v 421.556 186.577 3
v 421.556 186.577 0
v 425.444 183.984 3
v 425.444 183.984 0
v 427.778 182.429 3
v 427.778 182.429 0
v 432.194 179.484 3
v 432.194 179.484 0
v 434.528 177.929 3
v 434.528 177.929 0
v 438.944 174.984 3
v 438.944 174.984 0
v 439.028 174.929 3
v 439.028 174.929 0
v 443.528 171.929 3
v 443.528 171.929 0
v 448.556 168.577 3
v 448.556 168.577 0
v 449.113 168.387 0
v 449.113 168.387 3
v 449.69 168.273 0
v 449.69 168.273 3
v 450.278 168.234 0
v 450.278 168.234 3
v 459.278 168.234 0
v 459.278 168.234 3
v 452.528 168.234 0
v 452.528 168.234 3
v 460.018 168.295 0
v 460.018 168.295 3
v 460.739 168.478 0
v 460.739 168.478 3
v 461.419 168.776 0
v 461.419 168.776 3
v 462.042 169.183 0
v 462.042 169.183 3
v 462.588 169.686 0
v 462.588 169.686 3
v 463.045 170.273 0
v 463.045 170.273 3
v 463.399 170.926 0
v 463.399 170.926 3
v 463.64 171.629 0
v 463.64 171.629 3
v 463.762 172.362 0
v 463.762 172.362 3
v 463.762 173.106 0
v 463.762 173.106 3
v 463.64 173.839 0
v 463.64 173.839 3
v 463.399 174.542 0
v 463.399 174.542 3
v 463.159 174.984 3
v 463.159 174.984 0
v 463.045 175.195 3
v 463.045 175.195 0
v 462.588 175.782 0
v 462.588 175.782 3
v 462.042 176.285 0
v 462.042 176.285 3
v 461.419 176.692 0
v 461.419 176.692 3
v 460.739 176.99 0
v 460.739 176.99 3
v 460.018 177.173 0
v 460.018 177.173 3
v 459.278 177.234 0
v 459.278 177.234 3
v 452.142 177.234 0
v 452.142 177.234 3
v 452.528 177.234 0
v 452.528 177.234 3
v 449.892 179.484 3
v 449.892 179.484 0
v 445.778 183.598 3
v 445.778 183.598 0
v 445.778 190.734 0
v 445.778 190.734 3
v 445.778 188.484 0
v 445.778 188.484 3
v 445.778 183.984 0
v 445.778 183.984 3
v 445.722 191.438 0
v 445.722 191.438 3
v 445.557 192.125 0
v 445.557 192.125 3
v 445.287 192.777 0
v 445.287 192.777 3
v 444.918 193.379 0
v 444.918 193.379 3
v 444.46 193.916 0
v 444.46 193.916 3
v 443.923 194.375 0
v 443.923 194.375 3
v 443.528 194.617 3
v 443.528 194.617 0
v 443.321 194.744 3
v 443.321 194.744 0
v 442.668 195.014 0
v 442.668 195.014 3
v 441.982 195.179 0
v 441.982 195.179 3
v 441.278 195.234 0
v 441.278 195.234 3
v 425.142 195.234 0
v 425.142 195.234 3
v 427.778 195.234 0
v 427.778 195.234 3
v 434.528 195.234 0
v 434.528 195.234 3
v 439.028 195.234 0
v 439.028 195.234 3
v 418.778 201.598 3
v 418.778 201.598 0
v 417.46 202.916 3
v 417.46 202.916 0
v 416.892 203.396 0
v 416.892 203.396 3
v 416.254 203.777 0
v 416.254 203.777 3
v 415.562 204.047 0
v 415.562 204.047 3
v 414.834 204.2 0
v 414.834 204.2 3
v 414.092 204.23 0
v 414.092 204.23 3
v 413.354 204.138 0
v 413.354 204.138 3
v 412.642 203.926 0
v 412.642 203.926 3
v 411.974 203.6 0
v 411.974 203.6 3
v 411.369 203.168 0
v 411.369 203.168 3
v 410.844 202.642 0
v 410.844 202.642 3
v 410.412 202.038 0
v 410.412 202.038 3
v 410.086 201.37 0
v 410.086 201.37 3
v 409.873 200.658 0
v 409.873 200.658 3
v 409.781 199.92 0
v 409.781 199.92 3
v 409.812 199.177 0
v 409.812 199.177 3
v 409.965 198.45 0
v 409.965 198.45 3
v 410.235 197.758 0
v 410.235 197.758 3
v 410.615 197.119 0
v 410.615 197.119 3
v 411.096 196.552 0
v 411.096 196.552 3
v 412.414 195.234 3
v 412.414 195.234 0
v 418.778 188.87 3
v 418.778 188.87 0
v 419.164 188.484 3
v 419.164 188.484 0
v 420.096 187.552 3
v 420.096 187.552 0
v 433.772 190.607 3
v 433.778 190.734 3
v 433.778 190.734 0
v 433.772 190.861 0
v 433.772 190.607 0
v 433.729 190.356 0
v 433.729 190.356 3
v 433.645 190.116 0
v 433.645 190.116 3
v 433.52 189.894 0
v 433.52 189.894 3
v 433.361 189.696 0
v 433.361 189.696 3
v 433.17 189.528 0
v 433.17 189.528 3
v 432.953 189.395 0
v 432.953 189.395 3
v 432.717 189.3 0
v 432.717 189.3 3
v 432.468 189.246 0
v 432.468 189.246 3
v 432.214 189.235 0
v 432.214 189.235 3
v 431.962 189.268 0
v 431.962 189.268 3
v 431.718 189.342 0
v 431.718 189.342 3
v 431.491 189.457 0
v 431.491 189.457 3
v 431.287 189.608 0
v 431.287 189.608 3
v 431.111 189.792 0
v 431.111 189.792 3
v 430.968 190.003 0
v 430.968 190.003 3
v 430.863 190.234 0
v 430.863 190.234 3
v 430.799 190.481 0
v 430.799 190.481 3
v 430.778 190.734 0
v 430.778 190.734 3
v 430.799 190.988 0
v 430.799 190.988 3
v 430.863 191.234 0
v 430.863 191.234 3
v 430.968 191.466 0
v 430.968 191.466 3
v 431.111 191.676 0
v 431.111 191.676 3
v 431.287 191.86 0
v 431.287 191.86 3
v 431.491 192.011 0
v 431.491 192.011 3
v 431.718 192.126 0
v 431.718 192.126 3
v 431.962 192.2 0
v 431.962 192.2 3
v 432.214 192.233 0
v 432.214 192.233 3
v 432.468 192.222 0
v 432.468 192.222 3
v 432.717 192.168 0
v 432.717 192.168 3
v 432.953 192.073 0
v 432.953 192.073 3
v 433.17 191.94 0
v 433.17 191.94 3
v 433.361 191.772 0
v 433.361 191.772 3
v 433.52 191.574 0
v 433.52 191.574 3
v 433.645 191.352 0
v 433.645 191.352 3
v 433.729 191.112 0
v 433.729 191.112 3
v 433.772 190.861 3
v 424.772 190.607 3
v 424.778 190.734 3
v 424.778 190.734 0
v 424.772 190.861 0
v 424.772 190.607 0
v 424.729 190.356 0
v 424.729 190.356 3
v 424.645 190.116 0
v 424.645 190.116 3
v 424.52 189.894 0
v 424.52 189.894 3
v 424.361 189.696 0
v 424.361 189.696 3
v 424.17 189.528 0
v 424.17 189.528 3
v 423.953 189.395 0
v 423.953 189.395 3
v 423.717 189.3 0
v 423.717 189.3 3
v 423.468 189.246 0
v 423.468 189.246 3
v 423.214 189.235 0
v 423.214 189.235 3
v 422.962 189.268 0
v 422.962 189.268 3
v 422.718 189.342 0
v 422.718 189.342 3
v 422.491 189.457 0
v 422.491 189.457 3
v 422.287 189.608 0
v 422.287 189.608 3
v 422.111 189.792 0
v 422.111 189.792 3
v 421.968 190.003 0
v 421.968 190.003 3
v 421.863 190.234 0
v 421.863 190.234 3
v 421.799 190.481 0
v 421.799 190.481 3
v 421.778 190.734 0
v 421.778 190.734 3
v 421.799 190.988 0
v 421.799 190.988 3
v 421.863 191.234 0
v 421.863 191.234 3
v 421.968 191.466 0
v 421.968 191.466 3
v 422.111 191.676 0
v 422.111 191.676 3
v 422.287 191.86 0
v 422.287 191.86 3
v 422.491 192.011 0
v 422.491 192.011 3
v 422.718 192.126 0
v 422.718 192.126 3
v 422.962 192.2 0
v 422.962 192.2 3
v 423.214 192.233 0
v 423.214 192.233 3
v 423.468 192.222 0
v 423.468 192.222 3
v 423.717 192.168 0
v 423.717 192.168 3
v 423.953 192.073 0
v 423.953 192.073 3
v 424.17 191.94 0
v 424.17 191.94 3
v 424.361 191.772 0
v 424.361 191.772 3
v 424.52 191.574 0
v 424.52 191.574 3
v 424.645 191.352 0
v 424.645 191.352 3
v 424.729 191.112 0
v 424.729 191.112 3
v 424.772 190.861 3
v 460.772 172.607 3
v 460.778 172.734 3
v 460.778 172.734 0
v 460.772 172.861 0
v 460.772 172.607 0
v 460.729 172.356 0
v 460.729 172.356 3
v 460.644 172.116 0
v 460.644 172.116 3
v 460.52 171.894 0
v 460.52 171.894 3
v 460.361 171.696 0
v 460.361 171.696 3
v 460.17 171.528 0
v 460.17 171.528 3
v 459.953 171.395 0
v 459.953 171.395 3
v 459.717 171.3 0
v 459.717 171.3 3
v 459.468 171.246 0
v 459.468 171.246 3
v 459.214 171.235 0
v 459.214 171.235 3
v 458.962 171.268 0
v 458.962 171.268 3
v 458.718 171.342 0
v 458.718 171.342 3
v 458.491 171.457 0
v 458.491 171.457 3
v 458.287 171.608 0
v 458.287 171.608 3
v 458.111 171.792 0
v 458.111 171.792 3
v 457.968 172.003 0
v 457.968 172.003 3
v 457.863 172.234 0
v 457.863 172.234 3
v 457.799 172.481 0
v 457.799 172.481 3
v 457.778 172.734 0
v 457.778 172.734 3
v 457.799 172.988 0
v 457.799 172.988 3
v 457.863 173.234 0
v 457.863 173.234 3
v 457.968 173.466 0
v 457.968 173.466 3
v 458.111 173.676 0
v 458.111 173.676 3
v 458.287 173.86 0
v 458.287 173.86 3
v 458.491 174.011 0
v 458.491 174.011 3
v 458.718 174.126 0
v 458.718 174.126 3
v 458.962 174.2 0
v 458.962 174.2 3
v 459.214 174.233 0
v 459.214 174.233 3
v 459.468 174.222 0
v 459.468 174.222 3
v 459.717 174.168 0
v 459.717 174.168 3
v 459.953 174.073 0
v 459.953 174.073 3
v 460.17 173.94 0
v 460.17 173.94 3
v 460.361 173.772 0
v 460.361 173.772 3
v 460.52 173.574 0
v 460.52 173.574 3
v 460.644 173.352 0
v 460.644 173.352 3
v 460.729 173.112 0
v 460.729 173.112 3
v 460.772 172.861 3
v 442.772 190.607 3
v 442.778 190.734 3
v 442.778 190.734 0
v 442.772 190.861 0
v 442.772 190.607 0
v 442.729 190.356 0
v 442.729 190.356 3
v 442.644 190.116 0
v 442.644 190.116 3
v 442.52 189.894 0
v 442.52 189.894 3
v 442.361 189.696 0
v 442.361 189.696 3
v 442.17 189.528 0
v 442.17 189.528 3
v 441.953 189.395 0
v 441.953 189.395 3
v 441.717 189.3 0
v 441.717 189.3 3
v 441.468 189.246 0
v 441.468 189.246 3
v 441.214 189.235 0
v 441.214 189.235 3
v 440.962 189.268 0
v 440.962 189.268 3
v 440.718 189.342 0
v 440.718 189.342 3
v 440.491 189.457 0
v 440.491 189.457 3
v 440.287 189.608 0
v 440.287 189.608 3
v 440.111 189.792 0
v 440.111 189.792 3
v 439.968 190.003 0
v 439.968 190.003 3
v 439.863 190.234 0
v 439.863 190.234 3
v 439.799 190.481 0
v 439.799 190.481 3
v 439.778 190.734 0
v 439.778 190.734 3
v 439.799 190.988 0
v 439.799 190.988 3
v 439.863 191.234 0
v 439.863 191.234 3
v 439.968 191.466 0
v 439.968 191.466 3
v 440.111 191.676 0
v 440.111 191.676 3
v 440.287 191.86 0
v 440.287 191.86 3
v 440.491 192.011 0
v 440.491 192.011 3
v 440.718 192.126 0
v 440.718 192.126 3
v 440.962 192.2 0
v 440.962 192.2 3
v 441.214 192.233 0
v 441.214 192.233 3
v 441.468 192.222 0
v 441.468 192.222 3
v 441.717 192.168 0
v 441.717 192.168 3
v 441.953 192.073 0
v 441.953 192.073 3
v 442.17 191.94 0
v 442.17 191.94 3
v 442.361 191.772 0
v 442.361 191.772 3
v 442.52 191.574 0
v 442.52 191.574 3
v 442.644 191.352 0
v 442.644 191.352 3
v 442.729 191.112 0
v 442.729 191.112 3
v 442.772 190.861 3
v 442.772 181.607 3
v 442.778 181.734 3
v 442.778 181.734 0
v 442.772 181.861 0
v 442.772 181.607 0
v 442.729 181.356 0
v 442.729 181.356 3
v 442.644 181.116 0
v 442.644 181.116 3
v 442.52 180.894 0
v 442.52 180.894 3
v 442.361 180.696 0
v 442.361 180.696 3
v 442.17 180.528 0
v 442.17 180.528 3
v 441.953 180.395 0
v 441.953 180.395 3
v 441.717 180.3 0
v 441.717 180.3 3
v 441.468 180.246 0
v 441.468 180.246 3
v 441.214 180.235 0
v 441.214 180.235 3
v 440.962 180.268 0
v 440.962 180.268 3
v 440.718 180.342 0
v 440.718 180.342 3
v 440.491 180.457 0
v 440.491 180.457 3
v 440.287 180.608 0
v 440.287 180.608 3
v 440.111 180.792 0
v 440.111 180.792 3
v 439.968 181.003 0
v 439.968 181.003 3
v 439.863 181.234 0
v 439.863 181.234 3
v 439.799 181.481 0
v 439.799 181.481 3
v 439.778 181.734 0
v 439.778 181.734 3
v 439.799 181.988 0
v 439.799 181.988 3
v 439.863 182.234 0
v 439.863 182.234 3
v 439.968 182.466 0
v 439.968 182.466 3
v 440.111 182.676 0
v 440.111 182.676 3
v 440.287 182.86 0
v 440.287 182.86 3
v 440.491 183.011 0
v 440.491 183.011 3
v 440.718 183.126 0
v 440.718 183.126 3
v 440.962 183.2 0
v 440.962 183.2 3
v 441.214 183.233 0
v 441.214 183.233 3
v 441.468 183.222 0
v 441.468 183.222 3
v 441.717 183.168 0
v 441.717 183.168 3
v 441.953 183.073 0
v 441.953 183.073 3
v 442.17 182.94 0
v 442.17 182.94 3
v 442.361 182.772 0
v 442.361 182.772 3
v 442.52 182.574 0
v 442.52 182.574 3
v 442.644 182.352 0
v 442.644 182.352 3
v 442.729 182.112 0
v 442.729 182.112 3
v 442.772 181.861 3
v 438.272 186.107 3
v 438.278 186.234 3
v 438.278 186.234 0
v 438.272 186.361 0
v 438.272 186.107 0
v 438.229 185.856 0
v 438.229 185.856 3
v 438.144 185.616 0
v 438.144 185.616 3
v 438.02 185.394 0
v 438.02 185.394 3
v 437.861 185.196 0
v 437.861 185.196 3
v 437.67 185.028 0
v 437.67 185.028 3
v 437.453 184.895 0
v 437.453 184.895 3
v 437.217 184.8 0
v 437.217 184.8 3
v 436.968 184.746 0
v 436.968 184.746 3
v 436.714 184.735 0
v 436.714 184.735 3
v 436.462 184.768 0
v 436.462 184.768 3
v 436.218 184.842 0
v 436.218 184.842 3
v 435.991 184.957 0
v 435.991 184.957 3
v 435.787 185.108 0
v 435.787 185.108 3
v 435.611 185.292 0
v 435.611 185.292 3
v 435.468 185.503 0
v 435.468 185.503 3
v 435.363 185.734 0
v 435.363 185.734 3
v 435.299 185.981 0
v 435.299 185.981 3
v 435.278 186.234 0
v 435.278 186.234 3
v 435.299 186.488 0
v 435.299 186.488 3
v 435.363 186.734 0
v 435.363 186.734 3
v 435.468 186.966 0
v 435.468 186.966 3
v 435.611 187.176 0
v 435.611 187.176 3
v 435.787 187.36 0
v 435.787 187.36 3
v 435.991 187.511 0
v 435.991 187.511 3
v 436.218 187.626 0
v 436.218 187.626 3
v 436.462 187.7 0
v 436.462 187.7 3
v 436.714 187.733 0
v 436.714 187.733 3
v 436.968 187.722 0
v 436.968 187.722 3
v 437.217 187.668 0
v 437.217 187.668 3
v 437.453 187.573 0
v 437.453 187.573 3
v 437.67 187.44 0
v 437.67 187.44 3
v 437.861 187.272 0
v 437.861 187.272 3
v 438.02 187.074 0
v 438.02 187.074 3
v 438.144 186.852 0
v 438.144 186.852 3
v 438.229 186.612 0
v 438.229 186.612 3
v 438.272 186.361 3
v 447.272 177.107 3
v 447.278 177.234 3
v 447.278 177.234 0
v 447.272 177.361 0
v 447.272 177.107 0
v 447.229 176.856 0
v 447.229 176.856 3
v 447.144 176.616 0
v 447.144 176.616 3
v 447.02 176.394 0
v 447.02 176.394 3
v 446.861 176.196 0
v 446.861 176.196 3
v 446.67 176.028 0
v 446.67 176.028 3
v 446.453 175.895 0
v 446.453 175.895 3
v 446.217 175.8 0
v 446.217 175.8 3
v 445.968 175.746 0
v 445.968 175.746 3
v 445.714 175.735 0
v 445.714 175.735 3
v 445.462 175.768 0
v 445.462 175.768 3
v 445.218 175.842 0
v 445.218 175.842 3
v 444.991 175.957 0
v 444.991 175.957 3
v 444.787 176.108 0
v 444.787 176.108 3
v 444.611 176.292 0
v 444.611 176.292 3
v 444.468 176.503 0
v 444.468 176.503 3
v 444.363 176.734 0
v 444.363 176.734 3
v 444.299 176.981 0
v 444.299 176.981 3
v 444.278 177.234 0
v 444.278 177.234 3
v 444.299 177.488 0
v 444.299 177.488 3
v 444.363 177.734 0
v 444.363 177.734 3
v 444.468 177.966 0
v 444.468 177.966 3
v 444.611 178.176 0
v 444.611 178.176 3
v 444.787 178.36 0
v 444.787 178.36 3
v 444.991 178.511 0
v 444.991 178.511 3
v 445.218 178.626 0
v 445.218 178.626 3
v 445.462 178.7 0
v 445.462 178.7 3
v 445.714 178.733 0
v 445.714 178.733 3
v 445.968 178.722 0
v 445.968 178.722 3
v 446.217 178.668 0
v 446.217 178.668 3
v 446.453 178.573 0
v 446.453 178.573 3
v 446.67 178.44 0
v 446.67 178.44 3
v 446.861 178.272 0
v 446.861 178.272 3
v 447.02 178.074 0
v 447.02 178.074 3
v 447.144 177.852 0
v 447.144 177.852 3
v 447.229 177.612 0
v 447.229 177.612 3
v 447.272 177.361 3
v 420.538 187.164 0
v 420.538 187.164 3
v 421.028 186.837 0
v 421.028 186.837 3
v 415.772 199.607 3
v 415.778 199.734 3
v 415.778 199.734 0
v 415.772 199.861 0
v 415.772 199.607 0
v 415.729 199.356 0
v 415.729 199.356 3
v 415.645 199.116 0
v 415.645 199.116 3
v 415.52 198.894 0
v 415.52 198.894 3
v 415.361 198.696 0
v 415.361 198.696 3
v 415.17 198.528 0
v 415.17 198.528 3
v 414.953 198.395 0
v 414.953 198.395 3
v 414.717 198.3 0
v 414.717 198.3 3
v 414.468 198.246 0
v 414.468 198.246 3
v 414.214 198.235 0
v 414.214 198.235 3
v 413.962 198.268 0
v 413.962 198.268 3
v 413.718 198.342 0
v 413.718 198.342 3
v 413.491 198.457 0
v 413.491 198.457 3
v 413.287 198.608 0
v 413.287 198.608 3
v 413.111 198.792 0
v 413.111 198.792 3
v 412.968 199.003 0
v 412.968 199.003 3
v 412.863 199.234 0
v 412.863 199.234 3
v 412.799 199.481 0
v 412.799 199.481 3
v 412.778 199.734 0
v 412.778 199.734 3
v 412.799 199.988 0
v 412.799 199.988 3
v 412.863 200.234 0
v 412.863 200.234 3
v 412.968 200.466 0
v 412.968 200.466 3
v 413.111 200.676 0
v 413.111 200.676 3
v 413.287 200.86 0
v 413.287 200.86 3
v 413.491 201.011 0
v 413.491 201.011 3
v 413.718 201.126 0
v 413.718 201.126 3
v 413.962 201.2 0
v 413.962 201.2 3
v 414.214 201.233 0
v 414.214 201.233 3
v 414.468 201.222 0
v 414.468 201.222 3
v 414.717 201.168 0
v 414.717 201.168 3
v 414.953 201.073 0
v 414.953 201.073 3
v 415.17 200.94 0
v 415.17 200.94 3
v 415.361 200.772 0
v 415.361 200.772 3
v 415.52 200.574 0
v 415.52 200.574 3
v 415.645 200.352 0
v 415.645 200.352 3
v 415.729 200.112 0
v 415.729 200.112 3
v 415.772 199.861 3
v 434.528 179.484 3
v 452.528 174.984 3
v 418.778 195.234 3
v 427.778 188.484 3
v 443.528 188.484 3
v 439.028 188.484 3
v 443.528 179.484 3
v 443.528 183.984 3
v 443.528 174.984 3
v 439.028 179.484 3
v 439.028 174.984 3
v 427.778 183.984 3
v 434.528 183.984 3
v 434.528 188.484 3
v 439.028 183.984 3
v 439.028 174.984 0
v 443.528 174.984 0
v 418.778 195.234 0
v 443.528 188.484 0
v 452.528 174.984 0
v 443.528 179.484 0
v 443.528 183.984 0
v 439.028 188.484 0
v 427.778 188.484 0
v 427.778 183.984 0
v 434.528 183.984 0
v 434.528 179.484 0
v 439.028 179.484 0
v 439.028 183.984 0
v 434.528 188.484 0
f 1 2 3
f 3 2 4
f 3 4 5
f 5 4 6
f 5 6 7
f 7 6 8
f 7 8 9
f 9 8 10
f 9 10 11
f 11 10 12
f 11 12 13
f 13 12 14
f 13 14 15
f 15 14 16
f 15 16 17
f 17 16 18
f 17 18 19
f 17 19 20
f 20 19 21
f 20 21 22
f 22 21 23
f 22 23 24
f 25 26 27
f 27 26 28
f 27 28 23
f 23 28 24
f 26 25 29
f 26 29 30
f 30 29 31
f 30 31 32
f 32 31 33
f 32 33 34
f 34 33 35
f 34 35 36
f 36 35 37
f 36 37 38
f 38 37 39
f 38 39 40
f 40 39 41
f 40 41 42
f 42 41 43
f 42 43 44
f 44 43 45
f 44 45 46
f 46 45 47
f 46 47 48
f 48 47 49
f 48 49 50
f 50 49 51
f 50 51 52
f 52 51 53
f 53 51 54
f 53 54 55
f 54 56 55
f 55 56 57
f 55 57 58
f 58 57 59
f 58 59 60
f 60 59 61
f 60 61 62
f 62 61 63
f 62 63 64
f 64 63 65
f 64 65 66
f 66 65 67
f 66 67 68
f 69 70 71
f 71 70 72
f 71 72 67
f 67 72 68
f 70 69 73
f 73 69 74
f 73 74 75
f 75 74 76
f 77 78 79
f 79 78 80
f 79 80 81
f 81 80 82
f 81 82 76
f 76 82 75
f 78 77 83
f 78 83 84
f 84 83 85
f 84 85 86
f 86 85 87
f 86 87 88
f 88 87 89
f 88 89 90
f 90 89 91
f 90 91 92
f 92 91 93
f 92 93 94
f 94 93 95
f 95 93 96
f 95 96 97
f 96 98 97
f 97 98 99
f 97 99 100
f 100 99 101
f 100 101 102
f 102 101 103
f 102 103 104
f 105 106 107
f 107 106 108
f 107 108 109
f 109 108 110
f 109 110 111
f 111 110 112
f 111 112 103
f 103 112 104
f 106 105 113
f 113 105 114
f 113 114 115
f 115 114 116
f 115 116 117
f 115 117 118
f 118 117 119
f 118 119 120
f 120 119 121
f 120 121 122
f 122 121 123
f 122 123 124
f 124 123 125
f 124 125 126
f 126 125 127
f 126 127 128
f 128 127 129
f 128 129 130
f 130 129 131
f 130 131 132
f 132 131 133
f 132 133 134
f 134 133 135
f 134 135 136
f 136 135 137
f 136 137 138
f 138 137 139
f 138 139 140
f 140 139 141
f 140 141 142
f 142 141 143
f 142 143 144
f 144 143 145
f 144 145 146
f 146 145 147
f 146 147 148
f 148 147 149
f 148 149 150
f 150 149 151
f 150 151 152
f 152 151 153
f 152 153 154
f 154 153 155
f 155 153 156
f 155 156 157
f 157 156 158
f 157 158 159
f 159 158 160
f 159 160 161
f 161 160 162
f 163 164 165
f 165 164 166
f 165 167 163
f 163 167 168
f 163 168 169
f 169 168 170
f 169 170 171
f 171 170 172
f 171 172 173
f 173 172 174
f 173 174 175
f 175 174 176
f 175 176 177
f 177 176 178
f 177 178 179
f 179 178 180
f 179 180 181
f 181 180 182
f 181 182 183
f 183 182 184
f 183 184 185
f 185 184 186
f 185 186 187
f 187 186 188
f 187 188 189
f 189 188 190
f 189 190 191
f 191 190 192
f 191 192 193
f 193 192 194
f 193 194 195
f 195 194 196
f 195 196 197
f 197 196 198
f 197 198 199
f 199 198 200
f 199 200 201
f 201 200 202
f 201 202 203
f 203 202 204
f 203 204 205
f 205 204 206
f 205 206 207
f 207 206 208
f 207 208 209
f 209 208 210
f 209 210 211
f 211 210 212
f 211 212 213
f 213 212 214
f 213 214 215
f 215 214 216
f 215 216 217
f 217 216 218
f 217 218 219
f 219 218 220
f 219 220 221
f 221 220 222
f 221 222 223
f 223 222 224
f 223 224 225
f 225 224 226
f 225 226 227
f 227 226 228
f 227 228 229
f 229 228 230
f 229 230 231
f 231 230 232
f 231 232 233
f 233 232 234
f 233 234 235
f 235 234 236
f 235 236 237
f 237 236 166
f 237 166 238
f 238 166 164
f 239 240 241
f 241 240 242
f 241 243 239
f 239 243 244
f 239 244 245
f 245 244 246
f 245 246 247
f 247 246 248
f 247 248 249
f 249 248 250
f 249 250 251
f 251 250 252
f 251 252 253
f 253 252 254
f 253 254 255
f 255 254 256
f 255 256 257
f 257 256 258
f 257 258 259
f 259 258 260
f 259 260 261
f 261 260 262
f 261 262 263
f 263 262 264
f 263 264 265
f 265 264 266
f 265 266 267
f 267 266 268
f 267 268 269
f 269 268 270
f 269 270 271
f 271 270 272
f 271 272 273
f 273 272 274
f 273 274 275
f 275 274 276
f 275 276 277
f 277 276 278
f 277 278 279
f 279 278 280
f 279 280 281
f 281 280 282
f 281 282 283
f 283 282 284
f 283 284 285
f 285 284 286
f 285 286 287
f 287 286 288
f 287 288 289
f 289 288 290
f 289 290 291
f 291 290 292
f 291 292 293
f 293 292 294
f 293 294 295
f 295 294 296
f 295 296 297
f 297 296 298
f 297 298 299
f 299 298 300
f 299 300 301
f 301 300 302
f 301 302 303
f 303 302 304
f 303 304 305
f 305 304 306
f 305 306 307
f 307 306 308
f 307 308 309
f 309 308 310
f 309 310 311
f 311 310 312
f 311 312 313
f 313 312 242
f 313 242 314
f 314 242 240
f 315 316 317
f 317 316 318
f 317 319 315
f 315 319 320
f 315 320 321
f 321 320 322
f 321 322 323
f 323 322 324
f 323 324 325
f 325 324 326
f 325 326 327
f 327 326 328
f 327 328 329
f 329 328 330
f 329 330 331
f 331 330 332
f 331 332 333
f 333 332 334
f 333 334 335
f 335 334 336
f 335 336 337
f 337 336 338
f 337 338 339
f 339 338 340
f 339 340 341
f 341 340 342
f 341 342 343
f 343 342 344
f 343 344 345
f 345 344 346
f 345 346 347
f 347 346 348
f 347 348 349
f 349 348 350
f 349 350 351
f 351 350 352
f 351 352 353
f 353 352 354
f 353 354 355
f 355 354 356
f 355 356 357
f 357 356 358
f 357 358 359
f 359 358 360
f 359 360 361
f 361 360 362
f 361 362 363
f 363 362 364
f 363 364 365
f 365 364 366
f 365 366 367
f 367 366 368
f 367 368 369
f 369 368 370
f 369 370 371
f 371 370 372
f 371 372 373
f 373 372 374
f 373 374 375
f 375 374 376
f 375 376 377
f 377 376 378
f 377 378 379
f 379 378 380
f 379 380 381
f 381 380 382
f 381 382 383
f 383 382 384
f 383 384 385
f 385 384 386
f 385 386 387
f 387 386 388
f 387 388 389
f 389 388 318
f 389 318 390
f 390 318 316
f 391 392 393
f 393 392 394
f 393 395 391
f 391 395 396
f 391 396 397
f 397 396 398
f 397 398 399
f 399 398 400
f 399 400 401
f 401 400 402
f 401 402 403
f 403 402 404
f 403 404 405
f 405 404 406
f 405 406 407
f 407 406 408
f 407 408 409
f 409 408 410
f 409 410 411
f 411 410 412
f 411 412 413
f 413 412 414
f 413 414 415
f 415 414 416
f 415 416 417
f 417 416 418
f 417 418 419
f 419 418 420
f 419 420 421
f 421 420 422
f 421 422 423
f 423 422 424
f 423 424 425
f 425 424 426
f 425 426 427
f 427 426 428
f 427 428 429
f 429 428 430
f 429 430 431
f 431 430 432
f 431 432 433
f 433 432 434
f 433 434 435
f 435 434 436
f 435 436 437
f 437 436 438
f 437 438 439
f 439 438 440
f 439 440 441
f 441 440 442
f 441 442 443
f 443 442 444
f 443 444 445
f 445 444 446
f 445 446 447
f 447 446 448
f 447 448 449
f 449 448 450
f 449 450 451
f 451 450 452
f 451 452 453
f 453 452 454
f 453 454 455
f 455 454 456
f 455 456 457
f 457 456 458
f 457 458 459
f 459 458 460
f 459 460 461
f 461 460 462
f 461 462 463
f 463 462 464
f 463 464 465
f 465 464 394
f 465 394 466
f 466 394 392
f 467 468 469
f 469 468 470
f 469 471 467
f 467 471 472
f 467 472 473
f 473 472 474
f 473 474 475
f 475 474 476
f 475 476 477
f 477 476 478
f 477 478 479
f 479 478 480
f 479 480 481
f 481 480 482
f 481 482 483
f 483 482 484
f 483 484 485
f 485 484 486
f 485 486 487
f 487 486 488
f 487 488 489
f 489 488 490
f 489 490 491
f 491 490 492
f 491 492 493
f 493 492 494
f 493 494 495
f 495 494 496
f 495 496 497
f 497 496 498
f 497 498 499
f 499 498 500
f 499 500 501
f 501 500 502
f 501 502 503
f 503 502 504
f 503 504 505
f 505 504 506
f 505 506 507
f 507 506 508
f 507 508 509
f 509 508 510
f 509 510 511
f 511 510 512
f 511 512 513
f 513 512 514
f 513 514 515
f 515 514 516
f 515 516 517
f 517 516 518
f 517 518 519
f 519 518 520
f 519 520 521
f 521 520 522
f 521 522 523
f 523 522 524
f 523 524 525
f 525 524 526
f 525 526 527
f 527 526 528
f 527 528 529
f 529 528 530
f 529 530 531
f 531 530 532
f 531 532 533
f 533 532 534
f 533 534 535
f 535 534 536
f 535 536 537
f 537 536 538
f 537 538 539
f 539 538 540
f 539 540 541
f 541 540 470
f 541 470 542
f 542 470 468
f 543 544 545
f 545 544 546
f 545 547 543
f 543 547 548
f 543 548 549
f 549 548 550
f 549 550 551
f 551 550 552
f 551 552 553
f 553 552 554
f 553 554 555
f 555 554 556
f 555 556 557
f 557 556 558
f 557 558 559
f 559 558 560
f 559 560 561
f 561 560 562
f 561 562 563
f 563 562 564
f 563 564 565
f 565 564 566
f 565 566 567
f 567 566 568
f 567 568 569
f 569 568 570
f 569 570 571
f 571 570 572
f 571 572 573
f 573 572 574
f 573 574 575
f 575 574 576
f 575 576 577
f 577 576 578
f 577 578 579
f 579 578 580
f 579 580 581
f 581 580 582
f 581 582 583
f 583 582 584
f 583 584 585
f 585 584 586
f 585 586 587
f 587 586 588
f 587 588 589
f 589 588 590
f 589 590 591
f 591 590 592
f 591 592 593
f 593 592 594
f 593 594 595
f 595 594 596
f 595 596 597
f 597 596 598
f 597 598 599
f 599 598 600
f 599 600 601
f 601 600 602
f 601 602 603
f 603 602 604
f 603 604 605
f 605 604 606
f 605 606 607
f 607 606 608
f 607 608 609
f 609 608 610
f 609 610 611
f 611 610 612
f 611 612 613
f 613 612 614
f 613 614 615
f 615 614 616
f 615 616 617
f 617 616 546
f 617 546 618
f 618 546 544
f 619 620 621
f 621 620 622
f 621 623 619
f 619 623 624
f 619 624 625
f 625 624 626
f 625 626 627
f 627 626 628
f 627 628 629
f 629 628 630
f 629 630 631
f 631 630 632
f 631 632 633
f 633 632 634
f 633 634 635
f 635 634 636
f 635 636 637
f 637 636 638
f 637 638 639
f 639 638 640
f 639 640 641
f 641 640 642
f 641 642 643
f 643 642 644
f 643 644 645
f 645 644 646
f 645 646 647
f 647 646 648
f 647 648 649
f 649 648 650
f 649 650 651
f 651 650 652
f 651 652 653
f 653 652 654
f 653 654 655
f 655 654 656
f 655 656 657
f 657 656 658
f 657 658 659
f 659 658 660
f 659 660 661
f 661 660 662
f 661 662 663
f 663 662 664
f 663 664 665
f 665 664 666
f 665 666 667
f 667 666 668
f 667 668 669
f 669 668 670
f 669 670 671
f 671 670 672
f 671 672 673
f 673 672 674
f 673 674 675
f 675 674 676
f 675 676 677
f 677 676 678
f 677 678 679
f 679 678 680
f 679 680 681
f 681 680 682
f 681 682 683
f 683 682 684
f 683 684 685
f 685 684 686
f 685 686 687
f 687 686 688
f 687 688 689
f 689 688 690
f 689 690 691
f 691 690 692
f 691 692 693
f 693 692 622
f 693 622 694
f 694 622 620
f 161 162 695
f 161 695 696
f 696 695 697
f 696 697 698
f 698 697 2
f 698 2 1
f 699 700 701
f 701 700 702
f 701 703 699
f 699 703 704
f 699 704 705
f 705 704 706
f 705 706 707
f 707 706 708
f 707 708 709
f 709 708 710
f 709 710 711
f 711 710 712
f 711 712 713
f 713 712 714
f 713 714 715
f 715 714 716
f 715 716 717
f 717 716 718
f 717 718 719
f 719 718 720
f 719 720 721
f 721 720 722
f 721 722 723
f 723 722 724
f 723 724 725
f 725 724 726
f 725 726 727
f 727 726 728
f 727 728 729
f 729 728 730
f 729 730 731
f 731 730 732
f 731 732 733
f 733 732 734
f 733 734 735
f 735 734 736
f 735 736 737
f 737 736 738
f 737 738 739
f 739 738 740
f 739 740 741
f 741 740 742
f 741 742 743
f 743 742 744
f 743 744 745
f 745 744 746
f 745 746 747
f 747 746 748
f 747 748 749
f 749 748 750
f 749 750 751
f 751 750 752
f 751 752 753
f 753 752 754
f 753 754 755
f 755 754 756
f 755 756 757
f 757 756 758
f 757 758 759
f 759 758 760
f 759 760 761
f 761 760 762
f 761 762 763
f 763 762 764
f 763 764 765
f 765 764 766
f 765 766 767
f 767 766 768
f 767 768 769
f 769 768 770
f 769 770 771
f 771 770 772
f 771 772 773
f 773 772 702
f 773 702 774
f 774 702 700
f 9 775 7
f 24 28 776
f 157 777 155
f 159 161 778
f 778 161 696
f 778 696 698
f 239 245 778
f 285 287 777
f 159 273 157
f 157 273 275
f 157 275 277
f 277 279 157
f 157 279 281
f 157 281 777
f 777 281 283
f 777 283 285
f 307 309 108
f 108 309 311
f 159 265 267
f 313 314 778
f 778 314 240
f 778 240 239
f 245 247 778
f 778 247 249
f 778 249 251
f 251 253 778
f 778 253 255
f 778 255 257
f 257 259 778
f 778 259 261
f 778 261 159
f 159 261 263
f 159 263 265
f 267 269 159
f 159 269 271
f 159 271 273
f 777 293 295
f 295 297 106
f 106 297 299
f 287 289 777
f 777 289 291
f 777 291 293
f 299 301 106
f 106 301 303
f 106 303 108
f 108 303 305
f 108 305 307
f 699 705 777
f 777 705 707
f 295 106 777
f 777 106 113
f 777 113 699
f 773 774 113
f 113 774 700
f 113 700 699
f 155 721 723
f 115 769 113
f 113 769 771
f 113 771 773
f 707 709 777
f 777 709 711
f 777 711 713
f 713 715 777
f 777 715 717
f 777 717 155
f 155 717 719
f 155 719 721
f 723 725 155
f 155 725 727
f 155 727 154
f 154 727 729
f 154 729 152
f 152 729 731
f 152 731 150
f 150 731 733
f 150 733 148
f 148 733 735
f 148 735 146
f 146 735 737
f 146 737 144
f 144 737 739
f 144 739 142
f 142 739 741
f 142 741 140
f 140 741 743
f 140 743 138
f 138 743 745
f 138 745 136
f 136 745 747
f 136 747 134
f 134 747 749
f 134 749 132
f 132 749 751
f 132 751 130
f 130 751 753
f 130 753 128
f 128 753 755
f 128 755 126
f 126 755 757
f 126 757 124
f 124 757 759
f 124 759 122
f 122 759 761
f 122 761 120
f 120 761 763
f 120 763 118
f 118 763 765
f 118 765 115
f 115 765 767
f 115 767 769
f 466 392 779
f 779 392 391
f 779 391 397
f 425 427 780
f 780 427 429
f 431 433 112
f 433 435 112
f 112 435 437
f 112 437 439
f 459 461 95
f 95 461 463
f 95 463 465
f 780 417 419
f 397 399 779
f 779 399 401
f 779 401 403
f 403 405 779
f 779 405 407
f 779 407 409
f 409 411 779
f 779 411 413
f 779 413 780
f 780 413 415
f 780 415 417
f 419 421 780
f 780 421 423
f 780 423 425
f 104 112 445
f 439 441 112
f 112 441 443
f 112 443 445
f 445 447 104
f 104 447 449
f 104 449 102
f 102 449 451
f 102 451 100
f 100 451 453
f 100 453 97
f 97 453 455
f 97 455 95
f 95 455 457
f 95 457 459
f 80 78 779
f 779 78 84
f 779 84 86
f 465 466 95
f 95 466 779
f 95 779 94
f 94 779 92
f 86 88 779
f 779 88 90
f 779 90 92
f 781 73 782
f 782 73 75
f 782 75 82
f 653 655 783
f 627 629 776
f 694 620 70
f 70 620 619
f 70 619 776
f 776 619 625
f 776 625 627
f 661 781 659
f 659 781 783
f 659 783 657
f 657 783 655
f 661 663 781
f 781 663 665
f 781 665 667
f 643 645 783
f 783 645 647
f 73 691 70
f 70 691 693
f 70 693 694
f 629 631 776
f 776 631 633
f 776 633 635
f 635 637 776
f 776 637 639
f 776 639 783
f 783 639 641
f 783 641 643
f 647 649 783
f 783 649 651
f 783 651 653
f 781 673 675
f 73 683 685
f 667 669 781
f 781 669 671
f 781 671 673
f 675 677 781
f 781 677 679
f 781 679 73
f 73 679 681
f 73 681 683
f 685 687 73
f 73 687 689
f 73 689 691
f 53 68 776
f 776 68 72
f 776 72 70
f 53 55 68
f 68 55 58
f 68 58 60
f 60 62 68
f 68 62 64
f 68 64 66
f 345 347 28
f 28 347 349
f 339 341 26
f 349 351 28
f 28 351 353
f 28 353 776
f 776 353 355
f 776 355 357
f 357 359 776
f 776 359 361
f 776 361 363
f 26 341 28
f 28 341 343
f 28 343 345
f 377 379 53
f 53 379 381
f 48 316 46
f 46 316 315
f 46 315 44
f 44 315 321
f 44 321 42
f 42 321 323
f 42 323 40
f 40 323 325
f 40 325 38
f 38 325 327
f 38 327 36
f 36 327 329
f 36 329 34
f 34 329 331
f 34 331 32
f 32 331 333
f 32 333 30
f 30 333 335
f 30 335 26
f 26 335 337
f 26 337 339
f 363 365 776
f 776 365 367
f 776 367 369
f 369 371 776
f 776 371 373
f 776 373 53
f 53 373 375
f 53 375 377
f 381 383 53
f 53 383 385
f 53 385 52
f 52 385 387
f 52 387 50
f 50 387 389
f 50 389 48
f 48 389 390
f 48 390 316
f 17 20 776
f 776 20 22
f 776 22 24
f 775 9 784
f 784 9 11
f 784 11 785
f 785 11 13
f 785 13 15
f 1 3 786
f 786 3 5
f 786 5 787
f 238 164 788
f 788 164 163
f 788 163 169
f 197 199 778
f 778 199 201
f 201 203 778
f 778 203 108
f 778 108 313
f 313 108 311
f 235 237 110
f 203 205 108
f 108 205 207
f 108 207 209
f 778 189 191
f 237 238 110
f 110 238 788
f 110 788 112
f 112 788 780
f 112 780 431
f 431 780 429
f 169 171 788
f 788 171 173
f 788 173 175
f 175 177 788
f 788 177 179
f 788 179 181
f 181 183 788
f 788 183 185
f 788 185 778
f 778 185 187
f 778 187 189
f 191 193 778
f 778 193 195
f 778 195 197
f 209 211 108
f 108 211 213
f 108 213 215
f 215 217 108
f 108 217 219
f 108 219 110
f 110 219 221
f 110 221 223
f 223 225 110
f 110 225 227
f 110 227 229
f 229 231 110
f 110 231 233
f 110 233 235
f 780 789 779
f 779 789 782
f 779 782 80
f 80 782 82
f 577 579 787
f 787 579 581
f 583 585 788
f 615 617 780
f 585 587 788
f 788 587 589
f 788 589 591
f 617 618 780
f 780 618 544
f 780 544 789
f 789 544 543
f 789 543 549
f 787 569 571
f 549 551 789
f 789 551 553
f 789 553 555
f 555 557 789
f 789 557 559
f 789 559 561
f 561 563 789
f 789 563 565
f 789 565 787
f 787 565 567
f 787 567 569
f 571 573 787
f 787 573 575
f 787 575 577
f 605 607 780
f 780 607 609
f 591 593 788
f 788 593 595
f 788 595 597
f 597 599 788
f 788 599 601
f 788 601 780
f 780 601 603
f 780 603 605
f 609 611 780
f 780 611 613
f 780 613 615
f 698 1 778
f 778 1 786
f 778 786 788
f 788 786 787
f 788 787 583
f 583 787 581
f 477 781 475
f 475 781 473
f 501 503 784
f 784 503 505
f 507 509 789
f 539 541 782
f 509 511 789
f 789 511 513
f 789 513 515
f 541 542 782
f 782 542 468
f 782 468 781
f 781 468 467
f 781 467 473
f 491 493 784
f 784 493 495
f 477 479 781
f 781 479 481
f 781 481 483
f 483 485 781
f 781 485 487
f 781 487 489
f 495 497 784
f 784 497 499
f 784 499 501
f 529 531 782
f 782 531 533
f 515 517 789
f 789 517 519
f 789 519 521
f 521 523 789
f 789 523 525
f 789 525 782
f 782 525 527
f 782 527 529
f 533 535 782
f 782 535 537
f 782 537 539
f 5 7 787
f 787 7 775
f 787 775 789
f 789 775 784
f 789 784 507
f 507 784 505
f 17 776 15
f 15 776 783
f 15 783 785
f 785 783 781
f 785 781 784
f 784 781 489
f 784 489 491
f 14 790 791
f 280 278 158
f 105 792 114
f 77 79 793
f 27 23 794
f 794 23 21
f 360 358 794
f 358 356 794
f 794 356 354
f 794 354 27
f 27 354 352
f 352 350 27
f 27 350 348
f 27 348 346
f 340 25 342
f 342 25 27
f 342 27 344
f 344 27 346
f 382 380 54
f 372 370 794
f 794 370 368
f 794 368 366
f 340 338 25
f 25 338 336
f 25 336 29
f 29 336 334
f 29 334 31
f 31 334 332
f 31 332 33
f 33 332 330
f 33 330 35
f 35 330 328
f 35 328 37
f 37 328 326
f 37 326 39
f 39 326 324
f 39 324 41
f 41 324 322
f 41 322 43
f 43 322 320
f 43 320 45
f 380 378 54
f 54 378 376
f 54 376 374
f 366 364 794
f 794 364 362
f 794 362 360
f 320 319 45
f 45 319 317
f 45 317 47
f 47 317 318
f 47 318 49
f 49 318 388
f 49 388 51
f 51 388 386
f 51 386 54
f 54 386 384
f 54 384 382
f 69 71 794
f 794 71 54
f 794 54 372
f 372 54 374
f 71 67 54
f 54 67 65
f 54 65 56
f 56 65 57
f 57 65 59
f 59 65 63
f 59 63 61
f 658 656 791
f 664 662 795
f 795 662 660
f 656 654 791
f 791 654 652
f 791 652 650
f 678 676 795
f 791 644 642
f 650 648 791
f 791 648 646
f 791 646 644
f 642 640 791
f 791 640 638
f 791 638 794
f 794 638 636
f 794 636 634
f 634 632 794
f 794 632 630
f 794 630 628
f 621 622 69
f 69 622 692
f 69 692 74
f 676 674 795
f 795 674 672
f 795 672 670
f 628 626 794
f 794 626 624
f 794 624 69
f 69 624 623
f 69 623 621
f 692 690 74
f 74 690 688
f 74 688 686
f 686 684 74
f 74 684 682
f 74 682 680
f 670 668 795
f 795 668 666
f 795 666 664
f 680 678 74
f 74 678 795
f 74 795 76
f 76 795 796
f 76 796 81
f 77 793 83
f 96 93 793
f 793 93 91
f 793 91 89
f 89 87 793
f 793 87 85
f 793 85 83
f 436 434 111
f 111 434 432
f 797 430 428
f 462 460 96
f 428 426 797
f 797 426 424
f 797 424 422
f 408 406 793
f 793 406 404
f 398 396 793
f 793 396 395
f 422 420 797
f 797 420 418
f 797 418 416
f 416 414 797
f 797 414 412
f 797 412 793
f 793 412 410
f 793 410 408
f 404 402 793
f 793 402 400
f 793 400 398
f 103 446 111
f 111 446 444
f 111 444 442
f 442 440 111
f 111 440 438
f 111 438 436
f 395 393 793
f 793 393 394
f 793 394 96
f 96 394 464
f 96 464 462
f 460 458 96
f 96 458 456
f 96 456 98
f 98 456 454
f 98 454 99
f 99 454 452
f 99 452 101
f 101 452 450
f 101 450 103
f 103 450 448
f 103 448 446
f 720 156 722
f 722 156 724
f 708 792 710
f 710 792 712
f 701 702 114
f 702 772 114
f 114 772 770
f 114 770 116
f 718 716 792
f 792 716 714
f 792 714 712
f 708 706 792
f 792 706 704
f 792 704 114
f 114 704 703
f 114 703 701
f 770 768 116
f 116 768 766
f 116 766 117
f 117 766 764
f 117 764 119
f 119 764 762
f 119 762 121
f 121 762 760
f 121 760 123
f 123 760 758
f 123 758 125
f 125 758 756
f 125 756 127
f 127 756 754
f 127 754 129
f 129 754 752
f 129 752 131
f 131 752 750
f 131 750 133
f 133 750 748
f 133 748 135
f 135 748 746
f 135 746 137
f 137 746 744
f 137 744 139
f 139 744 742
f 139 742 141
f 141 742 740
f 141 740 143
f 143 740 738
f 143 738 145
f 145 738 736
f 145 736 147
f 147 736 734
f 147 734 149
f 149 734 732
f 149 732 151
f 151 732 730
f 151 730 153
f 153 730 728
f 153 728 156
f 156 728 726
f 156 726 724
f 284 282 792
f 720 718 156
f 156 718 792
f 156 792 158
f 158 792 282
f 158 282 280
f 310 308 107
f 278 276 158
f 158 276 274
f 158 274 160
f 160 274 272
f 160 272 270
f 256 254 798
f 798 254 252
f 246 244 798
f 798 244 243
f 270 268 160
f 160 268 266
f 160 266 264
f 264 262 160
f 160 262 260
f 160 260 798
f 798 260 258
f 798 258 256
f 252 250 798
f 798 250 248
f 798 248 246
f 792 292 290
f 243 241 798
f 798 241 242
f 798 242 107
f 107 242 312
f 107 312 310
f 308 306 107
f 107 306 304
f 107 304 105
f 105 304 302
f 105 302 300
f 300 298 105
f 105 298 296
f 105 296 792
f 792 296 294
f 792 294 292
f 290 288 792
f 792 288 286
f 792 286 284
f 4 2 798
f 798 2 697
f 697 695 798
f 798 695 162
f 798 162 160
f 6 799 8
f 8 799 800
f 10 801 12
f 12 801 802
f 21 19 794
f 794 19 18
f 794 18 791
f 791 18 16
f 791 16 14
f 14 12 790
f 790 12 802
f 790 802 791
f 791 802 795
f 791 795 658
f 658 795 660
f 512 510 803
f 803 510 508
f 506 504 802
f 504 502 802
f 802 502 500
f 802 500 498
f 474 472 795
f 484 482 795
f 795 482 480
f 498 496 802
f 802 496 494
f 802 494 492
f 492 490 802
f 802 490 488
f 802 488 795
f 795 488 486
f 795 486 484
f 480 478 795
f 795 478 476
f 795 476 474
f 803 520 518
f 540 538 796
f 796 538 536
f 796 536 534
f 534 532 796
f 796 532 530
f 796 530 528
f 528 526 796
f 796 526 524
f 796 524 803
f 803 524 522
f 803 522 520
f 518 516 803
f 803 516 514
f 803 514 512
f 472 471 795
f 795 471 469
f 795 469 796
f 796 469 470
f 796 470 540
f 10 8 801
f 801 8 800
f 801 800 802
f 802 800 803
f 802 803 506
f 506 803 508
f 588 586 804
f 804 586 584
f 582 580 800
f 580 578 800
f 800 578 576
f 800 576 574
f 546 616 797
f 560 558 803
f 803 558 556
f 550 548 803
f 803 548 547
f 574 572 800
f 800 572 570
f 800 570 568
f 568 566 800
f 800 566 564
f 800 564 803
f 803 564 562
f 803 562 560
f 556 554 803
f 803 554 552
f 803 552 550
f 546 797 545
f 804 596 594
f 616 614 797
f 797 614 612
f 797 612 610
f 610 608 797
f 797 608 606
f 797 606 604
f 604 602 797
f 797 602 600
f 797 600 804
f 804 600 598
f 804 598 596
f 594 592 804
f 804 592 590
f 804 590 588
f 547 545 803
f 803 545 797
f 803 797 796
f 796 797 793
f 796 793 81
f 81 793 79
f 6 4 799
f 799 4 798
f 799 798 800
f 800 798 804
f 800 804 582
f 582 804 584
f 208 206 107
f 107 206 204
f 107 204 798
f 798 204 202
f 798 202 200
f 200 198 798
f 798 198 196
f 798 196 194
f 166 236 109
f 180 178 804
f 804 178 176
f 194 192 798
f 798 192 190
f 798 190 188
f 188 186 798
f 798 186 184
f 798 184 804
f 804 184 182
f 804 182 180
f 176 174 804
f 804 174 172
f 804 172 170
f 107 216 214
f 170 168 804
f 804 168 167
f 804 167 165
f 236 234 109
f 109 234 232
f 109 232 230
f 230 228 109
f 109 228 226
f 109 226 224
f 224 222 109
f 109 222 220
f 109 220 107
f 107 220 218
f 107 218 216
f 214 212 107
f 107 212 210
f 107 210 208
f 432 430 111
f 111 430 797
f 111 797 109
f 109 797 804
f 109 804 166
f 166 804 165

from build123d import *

# Parameters (mm, degrees)
MODEL_R                 = 1.5
SALIENTE_EXTRUIR1_DEPTH = 3


with BuildPart() as part:
    # Model → Saliente-Extruir1 (new body)
    with BuildSketch(Plane.XY):
        with BuildLine():
            ThreePointArc((420.095665246, 187.552102229), (420.777579713, 186.992469489), (421.555570316, 186.576624848))
            Line((421.555570316, 186.576624848), (447.102329028, 169.545452373))
            Line((447.102329028, 169.545452373), (448.555570316, 168.576624848))
            ThreePointArc((448.555570316, 168.576624848), (449.399739312, 168.320548983), (450.277645761, 168.234082745))
            Line((450.277645761, 168.234082745), (459.277645761, 168.234082745))
            ThreePointArc((459.277645761, 168.234082745), (463.777645761, 172.734082745), (459.277645761, 177.234082745))
            Line((459.277645761, 177.234082745), (452.141606792, 177.234082745))
            Line((452.141606792, 177.234082745), (445.777645761, 183.598043775))
            Line((445.777645761, 183.598043775), (445.777645761, 190.734082745))
            ThreePointArc((445.777645761, 190.734082745), (444.459626276, 193.91606326), (441.277645761, 195.234082745))
            Line((441.277645761, 195.234082745), (425.141606792, 195.234082745))
            Line((425.141606792, 195.234082745), (417.459626276, 202.91606326))
            ThreePointArc((417.459626276, 202.91606326), (411.095665246, 202.91606326), (411.095665246, 196.552102229))
            Line((411.095665246, 196.552102229), (420.095665246, 187.552102229))
        make_face()
        with Locations((459.277645761, 172.734082745)):
            Circle(MODEL_R, mode=Mode.SUBTRACT)
        with Locations((445.777645761, 177.234082745)):
            Circle(MODEL_R, mode=Mode.SUBTRACT)
        with Locations((441.277645761, 181.734082745)):
            Circle(MODEL_R, mode=Mode.SUBTRACT)
        with Locations((423.277645761, 190.734082745)):
            Circle(MODEL_R, mode=Mode.SUBTRACT)
        with Locations((436.777645761, 186.234082745)):
            Circle(MODEL_R, mode=Mode.SUBTRACT)
        with Locations((432.277645761, 190.734082745)):
            Circle(MODEL_R, mode=Mode.SUBTRACT)
        with Locations((414.277645761, 199.734082745)):
            Circle(MODEL_R, mode=Mode.SUBTRACT)
        with Locations((441.277645761, 190.734082745)):
            Circle(MODEL_R, mode=Mode.SUBTRACT)
    extrude(amount=SALIENTE_EXTRUIR1_DEPTH)


solid = part.part
